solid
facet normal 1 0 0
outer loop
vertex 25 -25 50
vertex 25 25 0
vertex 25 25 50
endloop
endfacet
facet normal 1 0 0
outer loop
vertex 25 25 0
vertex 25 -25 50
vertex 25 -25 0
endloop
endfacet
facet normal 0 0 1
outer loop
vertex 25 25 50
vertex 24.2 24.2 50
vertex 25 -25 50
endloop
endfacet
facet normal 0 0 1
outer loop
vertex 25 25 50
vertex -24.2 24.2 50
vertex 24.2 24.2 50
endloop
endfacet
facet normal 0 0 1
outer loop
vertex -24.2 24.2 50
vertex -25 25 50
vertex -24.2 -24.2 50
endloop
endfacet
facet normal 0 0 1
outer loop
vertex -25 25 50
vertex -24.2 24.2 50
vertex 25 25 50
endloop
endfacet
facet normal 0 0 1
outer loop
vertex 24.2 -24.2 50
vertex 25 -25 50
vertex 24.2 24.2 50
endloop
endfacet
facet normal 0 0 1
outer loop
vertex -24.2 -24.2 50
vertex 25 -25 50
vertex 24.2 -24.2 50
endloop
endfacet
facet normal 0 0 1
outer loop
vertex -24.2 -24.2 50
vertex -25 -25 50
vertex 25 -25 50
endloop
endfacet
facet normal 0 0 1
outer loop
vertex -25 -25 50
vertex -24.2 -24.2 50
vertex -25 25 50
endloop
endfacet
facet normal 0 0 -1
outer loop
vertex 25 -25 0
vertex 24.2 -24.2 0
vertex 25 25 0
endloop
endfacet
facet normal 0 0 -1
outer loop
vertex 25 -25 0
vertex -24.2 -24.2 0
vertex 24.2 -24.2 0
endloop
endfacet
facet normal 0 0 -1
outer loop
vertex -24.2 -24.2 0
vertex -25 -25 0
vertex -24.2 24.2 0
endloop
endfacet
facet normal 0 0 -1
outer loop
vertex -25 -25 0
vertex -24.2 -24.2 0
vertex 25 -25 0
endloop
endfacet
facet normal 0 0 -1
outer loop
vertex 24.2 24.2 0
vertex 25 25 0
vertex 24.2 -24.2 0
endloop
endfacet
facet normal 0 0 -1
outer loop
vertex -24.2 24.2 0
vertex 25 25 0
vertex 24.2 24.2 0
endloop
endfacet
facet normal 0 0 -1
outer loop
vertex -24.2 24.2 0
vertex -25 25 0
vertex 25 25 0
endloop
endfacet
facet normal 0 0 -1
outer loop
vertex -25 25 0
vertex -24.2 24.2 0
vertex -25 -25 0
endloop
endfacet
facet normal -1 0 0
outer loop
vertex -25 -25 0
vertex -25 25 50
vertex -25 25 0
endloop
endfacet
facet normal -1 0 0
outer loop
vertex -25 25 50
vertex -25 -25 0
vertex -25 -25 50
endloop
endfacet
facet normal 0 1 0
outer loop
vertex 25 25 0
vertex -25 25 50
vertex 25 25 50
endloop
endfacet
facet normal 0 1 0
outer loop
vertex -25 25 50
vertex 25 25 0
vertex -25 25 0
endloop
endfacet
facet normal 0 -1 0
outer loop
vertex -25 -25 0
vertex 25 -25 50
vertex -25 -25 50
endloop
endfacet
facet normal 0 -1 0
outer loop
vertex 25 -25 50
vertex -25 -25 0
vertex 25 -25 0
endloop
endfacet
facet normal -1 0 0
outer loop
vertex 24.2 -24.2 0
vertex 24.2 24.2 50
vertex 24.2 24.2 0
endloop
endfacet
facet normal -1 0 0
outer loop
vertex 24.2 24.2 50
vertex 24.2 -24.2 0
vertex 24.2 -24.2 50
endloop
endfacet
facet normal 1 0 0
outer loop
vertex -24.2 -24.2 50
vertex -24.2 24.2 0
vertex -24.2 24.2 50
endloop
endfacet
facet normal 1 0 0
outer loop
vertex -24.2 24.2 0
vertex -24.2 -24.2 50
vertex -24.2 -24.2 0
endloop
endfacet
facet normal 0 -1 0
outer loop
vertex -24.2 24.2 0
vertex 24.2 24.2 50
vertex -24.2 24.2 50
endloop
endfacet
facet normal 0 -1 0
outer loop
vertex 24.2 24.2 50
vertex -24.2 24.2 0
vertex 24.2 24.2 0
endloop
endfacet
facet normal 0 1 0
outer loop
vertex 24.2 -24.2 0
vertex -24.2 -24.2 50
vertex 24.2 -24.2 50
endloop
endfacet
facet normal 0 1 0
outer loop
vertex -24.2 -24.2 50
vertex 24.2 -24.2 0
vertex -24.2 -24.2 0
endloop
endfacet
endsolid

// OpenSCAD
a=0.8;
difference()
{
    translate([0,0,50/2]) cube([50,50,50],center=true);
    translate([0,0,0]) cube([50-2*a,50-2*a,120],center=true);
}
